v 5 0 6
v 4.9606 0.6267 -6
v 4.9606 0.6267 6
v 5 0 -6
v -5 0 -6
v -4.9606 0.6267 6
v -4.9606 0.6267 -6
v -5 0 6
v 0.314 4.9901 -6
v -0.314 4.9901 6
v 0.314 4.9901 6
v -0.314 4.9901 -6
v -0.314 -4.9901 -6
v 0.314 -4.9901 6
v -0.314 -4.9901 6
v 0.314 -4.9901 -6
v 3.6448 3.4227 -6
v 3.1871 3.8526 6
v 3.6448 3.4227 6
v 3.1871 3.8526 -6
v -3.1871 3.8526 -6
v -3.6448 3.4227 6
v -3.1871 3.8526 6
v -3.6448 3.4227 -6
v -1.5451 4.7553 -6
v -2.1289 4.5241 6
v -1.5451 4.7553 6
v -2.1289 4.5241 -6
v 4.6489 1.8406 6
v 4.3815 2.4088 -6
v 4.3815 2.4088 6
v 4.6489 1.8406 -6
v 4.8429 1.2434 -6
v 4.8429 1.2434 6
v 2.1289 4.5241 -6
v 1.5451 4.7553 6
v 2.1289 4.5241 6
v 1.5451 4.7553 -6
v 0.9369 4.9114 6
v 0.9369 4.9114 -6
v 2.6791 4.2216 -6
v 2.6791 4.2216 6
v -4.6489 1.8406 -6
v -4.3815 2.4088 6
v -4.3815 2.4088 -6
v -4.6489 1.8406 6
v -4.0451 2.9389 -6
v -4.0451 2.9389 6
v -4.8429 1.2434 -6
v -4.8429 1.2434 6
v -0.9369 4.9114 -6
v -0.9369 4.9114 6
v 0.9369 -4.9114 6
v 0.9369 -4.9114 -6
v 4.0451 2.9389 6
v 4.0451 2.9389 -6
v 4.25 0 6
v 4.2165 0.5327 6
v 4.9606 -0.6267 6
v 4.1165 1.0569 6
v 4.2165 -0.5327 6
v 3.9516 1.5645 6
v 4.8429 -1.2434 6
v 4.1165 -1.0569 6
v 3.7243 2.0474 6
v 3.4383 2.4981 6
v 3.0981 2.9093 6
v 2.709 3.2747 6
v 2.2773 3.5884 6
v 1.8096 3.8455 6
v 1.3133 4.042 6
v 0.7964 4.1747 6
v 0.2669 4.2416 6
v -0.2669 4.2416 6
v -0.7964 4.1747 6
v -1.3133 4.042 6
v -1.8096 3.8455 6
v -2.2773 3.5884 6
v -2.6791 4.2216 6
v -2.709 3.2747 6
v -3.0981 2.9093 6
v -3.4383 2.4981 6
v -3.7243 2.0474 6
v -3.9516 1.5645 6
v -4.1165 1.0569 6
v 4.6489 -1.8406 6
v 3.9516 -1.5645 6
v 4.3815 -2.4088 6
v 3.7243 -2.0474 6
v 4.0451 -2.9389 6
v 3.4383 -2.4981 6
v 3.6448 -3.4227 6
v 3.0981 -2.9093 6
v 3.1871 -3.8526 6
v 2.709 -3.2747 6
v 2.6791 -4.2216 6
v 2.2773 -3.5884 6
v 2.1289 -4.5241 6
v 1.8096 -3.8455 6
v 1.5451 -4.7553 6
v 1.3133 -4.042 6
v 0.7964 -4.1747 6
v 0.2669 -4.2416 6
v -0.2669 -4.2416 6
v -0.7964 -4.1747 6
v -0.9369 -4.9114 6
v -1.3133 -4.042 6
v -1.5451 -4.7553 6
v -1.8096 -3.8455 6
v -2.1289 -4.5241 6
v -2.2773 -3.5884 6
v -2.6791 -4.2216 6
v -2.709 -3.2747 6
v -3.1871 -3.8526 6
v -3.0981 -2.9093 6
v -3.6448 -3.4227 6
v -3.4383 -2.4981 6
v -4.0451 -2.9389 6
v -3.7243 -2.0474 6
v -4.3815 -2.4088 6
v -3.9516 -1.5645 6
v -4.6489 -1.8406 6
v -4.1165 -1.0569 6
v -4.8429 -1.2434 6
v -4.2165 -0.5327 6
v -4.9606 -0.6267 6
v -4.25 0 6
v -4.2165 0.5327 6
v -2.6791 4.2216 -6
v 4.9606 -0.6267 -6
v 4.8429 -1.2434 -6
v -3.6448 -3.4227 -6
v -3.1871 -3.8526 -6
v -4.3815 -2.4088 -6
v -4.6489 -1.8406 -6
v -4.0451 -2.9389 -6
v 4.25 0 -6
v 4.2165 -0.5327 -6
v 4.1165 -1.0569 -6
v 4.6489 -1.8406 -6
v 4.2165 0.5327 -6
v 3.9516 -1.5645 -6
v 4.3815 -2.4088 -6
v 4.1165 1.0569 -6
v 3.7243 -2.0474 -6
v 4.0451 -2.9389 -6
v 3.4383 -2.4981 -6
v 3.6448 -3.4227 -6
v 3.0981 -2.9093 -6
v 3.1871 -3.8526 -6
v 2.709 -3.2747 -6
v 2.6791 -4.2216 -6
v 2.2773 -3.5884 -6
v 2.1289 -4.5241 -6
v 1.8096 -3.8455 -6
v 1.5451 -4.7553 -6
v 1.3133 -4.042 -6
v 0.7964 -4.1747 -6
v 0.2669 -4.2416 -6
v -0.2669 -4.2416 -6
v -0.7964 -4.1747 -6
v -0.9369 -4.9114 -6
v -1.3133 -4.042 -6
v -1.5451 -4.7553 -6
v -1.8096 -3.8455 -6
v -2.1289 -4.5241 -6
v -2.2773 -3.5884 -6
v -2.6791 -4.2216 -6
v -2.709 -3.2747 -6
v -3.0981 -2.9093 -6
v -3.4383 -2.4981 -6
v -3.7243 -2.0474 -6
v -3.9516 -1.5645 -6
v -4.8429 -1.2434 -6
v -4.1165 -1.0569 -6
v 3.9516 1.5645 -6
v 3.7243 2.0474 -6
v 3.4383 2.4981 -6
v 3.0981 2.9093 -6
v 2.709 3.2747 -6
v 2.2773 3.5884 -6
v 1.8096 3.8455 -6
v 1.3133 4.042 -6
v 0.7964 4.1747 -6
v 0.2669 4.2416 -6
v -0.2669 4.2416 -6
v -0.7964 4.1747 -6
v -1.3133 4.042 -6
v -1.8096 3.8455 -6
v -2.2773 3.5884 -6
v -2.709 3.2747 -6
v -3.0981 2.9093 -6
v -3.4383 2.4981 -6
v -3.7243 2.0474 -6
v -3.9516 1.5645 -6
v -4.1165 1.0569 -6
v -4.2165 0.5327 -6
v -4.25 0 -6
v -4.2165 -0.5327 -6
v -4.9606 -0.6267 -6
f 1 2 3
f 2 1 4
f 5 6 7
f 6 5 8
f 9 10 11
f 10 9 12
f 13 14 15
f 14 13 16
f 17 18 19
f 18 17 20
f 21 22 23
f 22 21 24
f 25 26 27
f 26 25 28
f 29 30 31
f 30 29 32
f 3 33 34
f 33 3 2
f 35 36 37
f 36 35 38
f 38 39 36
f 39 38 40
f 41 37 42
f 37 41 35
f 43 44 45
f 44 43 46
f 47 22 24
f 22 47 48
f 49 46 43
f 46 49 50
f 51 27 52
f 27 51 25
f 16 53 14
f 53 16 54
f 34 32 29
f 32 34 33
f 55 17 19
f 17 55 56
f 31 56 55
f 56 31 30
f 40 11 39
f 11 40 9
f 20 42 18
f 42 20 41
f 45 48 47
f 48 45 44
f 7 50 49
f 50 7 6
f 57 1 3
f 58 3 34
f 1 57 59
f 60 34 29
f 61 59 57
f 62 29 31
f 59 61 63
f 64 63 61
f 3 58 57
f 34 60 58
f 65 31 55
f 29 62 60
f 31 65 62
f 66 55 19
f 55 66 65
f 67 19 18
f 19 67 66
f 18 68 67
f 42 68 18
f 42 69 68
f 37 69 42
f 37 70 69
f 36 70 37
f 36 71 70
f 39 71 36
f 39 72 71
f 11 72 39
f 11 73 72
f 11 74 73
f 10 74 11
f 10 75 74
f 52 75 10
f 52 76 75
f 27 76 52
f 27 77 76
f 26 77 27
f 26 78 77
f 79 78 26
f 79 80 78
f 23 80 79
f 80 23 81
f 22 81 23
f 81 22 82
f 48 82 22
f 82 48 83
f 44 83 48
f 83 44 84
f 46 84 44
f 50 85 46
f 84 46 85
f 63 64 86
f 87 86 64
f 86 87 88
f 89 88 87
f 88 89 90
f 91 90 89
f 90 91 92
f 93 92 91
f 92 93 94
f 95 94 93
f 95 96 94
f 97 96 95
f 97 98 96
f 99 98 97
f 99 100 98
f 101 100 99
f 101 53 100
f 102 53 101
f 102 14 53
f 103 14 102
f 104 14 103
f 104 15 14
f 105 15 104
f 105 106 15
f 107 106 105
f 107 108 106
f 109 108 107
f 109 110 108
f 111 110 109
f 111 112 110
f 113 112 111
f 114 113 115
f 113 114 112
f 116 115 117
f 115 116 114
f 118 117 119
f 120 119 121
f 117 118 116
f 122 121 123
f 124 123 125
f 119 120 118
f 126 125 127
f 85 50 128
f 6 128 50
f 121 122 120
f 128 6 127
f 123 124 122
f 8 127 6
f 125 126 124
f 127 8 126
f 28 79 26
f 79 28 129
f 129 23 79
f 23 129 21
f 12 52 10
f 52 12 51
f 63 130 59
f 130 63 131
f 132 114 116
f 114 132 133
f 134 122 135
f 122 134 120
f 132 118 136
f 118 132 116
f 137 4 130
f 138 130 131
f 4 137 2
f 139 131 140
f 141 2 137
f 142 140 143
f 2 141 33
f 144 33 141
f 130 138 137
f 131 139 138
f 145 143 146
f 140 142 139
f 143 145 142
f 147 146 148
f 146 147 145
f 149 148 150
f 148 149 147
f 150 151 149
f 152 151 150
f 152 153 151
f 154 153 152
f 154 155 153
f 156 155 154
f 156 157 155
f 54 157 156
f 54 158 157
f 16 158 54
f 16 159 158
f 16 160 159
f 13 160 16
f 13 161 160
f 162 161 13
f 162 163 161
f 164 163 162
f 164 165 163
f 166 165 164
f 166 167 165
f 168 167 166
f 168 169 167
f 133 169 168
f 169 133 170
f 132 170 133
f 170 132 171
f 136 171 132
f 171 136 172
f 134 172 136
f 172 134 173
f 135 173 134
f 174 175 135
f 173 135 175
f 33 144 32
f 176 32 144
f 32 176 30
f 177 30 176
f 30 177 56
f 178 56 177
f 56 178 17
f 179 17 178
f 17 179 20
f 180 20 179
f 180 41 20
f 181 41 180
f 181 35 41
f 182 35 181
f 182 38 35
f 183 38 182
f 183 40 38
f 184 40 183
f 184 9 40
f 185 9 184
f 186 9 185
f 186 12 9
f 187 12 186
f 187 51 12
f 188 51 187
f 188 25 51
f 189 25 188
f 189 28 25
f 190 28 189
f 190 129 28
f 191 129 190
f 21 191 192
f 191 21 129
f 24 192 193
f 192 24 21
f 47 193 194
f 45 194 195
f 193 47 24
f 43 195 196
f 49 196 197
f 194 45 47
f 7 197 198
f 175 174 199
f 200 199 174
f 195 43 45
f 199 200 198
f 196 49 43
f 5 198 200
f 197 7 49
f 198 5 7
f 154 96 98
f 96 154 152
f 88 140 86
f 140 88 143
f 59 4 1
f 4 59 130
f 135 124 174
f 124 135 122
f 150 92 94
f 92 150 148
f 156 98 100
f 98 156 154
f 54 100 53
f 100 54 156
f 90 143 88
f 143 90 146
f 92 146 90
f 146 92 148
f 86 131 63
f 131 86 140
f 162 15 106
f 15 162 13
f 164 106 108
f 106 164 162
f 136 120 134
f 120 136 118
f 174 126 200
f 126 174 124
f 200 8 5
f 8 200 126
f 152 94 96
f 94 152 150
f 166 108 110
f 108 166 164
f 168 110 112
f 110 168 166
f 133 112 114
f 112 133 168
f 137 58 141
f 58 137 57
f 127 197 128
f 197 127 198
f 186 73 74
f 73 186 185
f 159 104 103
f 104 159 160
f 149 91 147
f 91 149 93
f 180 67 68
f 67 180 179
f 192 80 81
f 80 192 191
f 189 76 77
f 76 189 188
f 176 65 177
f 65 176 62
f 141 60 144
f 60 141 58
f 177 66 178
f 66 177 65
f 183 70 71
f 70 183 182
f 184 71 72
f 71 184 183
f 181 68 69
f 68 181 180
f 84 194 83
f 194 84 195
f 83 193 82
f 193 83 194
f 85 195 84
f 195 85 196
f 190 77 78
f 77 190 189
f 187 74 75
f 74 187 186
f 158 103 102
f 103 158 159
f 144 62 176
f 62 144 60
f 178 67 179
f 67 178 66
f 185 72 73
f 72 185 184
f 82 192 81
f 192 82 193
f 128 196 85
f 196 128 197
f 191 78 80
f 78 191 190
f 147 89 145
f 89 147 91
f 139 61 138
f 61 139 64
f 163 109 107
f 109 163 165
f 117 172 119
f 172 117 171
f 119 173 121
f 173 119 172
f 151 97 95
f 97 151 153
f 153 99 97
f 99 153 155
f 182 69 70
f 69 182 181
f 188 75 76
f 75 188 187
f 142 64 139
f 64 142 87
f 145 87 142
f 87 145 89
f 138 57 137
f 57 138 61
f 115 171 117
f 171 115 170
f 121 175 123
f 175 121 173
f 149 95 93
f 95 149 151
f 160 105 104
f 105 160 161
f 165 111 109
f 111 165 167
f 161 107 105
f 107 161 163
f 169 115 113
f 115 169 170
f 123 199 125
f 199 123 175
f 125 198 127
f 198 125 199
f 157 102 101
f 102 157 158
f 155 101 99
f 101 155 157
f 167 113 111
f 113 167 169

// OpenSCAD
$fn = 50;


difference() {
	union() {
		translate(v = [0, 0, -6.0000000000]) {
			cylinder(h = 12, r = 5.0000000000);
		}
	}
	union() {
		translate(v = [0, 0, -100.0000000000]) {
			cylinder(h = 200, r = 4.2500000000);
		}
	}
}
